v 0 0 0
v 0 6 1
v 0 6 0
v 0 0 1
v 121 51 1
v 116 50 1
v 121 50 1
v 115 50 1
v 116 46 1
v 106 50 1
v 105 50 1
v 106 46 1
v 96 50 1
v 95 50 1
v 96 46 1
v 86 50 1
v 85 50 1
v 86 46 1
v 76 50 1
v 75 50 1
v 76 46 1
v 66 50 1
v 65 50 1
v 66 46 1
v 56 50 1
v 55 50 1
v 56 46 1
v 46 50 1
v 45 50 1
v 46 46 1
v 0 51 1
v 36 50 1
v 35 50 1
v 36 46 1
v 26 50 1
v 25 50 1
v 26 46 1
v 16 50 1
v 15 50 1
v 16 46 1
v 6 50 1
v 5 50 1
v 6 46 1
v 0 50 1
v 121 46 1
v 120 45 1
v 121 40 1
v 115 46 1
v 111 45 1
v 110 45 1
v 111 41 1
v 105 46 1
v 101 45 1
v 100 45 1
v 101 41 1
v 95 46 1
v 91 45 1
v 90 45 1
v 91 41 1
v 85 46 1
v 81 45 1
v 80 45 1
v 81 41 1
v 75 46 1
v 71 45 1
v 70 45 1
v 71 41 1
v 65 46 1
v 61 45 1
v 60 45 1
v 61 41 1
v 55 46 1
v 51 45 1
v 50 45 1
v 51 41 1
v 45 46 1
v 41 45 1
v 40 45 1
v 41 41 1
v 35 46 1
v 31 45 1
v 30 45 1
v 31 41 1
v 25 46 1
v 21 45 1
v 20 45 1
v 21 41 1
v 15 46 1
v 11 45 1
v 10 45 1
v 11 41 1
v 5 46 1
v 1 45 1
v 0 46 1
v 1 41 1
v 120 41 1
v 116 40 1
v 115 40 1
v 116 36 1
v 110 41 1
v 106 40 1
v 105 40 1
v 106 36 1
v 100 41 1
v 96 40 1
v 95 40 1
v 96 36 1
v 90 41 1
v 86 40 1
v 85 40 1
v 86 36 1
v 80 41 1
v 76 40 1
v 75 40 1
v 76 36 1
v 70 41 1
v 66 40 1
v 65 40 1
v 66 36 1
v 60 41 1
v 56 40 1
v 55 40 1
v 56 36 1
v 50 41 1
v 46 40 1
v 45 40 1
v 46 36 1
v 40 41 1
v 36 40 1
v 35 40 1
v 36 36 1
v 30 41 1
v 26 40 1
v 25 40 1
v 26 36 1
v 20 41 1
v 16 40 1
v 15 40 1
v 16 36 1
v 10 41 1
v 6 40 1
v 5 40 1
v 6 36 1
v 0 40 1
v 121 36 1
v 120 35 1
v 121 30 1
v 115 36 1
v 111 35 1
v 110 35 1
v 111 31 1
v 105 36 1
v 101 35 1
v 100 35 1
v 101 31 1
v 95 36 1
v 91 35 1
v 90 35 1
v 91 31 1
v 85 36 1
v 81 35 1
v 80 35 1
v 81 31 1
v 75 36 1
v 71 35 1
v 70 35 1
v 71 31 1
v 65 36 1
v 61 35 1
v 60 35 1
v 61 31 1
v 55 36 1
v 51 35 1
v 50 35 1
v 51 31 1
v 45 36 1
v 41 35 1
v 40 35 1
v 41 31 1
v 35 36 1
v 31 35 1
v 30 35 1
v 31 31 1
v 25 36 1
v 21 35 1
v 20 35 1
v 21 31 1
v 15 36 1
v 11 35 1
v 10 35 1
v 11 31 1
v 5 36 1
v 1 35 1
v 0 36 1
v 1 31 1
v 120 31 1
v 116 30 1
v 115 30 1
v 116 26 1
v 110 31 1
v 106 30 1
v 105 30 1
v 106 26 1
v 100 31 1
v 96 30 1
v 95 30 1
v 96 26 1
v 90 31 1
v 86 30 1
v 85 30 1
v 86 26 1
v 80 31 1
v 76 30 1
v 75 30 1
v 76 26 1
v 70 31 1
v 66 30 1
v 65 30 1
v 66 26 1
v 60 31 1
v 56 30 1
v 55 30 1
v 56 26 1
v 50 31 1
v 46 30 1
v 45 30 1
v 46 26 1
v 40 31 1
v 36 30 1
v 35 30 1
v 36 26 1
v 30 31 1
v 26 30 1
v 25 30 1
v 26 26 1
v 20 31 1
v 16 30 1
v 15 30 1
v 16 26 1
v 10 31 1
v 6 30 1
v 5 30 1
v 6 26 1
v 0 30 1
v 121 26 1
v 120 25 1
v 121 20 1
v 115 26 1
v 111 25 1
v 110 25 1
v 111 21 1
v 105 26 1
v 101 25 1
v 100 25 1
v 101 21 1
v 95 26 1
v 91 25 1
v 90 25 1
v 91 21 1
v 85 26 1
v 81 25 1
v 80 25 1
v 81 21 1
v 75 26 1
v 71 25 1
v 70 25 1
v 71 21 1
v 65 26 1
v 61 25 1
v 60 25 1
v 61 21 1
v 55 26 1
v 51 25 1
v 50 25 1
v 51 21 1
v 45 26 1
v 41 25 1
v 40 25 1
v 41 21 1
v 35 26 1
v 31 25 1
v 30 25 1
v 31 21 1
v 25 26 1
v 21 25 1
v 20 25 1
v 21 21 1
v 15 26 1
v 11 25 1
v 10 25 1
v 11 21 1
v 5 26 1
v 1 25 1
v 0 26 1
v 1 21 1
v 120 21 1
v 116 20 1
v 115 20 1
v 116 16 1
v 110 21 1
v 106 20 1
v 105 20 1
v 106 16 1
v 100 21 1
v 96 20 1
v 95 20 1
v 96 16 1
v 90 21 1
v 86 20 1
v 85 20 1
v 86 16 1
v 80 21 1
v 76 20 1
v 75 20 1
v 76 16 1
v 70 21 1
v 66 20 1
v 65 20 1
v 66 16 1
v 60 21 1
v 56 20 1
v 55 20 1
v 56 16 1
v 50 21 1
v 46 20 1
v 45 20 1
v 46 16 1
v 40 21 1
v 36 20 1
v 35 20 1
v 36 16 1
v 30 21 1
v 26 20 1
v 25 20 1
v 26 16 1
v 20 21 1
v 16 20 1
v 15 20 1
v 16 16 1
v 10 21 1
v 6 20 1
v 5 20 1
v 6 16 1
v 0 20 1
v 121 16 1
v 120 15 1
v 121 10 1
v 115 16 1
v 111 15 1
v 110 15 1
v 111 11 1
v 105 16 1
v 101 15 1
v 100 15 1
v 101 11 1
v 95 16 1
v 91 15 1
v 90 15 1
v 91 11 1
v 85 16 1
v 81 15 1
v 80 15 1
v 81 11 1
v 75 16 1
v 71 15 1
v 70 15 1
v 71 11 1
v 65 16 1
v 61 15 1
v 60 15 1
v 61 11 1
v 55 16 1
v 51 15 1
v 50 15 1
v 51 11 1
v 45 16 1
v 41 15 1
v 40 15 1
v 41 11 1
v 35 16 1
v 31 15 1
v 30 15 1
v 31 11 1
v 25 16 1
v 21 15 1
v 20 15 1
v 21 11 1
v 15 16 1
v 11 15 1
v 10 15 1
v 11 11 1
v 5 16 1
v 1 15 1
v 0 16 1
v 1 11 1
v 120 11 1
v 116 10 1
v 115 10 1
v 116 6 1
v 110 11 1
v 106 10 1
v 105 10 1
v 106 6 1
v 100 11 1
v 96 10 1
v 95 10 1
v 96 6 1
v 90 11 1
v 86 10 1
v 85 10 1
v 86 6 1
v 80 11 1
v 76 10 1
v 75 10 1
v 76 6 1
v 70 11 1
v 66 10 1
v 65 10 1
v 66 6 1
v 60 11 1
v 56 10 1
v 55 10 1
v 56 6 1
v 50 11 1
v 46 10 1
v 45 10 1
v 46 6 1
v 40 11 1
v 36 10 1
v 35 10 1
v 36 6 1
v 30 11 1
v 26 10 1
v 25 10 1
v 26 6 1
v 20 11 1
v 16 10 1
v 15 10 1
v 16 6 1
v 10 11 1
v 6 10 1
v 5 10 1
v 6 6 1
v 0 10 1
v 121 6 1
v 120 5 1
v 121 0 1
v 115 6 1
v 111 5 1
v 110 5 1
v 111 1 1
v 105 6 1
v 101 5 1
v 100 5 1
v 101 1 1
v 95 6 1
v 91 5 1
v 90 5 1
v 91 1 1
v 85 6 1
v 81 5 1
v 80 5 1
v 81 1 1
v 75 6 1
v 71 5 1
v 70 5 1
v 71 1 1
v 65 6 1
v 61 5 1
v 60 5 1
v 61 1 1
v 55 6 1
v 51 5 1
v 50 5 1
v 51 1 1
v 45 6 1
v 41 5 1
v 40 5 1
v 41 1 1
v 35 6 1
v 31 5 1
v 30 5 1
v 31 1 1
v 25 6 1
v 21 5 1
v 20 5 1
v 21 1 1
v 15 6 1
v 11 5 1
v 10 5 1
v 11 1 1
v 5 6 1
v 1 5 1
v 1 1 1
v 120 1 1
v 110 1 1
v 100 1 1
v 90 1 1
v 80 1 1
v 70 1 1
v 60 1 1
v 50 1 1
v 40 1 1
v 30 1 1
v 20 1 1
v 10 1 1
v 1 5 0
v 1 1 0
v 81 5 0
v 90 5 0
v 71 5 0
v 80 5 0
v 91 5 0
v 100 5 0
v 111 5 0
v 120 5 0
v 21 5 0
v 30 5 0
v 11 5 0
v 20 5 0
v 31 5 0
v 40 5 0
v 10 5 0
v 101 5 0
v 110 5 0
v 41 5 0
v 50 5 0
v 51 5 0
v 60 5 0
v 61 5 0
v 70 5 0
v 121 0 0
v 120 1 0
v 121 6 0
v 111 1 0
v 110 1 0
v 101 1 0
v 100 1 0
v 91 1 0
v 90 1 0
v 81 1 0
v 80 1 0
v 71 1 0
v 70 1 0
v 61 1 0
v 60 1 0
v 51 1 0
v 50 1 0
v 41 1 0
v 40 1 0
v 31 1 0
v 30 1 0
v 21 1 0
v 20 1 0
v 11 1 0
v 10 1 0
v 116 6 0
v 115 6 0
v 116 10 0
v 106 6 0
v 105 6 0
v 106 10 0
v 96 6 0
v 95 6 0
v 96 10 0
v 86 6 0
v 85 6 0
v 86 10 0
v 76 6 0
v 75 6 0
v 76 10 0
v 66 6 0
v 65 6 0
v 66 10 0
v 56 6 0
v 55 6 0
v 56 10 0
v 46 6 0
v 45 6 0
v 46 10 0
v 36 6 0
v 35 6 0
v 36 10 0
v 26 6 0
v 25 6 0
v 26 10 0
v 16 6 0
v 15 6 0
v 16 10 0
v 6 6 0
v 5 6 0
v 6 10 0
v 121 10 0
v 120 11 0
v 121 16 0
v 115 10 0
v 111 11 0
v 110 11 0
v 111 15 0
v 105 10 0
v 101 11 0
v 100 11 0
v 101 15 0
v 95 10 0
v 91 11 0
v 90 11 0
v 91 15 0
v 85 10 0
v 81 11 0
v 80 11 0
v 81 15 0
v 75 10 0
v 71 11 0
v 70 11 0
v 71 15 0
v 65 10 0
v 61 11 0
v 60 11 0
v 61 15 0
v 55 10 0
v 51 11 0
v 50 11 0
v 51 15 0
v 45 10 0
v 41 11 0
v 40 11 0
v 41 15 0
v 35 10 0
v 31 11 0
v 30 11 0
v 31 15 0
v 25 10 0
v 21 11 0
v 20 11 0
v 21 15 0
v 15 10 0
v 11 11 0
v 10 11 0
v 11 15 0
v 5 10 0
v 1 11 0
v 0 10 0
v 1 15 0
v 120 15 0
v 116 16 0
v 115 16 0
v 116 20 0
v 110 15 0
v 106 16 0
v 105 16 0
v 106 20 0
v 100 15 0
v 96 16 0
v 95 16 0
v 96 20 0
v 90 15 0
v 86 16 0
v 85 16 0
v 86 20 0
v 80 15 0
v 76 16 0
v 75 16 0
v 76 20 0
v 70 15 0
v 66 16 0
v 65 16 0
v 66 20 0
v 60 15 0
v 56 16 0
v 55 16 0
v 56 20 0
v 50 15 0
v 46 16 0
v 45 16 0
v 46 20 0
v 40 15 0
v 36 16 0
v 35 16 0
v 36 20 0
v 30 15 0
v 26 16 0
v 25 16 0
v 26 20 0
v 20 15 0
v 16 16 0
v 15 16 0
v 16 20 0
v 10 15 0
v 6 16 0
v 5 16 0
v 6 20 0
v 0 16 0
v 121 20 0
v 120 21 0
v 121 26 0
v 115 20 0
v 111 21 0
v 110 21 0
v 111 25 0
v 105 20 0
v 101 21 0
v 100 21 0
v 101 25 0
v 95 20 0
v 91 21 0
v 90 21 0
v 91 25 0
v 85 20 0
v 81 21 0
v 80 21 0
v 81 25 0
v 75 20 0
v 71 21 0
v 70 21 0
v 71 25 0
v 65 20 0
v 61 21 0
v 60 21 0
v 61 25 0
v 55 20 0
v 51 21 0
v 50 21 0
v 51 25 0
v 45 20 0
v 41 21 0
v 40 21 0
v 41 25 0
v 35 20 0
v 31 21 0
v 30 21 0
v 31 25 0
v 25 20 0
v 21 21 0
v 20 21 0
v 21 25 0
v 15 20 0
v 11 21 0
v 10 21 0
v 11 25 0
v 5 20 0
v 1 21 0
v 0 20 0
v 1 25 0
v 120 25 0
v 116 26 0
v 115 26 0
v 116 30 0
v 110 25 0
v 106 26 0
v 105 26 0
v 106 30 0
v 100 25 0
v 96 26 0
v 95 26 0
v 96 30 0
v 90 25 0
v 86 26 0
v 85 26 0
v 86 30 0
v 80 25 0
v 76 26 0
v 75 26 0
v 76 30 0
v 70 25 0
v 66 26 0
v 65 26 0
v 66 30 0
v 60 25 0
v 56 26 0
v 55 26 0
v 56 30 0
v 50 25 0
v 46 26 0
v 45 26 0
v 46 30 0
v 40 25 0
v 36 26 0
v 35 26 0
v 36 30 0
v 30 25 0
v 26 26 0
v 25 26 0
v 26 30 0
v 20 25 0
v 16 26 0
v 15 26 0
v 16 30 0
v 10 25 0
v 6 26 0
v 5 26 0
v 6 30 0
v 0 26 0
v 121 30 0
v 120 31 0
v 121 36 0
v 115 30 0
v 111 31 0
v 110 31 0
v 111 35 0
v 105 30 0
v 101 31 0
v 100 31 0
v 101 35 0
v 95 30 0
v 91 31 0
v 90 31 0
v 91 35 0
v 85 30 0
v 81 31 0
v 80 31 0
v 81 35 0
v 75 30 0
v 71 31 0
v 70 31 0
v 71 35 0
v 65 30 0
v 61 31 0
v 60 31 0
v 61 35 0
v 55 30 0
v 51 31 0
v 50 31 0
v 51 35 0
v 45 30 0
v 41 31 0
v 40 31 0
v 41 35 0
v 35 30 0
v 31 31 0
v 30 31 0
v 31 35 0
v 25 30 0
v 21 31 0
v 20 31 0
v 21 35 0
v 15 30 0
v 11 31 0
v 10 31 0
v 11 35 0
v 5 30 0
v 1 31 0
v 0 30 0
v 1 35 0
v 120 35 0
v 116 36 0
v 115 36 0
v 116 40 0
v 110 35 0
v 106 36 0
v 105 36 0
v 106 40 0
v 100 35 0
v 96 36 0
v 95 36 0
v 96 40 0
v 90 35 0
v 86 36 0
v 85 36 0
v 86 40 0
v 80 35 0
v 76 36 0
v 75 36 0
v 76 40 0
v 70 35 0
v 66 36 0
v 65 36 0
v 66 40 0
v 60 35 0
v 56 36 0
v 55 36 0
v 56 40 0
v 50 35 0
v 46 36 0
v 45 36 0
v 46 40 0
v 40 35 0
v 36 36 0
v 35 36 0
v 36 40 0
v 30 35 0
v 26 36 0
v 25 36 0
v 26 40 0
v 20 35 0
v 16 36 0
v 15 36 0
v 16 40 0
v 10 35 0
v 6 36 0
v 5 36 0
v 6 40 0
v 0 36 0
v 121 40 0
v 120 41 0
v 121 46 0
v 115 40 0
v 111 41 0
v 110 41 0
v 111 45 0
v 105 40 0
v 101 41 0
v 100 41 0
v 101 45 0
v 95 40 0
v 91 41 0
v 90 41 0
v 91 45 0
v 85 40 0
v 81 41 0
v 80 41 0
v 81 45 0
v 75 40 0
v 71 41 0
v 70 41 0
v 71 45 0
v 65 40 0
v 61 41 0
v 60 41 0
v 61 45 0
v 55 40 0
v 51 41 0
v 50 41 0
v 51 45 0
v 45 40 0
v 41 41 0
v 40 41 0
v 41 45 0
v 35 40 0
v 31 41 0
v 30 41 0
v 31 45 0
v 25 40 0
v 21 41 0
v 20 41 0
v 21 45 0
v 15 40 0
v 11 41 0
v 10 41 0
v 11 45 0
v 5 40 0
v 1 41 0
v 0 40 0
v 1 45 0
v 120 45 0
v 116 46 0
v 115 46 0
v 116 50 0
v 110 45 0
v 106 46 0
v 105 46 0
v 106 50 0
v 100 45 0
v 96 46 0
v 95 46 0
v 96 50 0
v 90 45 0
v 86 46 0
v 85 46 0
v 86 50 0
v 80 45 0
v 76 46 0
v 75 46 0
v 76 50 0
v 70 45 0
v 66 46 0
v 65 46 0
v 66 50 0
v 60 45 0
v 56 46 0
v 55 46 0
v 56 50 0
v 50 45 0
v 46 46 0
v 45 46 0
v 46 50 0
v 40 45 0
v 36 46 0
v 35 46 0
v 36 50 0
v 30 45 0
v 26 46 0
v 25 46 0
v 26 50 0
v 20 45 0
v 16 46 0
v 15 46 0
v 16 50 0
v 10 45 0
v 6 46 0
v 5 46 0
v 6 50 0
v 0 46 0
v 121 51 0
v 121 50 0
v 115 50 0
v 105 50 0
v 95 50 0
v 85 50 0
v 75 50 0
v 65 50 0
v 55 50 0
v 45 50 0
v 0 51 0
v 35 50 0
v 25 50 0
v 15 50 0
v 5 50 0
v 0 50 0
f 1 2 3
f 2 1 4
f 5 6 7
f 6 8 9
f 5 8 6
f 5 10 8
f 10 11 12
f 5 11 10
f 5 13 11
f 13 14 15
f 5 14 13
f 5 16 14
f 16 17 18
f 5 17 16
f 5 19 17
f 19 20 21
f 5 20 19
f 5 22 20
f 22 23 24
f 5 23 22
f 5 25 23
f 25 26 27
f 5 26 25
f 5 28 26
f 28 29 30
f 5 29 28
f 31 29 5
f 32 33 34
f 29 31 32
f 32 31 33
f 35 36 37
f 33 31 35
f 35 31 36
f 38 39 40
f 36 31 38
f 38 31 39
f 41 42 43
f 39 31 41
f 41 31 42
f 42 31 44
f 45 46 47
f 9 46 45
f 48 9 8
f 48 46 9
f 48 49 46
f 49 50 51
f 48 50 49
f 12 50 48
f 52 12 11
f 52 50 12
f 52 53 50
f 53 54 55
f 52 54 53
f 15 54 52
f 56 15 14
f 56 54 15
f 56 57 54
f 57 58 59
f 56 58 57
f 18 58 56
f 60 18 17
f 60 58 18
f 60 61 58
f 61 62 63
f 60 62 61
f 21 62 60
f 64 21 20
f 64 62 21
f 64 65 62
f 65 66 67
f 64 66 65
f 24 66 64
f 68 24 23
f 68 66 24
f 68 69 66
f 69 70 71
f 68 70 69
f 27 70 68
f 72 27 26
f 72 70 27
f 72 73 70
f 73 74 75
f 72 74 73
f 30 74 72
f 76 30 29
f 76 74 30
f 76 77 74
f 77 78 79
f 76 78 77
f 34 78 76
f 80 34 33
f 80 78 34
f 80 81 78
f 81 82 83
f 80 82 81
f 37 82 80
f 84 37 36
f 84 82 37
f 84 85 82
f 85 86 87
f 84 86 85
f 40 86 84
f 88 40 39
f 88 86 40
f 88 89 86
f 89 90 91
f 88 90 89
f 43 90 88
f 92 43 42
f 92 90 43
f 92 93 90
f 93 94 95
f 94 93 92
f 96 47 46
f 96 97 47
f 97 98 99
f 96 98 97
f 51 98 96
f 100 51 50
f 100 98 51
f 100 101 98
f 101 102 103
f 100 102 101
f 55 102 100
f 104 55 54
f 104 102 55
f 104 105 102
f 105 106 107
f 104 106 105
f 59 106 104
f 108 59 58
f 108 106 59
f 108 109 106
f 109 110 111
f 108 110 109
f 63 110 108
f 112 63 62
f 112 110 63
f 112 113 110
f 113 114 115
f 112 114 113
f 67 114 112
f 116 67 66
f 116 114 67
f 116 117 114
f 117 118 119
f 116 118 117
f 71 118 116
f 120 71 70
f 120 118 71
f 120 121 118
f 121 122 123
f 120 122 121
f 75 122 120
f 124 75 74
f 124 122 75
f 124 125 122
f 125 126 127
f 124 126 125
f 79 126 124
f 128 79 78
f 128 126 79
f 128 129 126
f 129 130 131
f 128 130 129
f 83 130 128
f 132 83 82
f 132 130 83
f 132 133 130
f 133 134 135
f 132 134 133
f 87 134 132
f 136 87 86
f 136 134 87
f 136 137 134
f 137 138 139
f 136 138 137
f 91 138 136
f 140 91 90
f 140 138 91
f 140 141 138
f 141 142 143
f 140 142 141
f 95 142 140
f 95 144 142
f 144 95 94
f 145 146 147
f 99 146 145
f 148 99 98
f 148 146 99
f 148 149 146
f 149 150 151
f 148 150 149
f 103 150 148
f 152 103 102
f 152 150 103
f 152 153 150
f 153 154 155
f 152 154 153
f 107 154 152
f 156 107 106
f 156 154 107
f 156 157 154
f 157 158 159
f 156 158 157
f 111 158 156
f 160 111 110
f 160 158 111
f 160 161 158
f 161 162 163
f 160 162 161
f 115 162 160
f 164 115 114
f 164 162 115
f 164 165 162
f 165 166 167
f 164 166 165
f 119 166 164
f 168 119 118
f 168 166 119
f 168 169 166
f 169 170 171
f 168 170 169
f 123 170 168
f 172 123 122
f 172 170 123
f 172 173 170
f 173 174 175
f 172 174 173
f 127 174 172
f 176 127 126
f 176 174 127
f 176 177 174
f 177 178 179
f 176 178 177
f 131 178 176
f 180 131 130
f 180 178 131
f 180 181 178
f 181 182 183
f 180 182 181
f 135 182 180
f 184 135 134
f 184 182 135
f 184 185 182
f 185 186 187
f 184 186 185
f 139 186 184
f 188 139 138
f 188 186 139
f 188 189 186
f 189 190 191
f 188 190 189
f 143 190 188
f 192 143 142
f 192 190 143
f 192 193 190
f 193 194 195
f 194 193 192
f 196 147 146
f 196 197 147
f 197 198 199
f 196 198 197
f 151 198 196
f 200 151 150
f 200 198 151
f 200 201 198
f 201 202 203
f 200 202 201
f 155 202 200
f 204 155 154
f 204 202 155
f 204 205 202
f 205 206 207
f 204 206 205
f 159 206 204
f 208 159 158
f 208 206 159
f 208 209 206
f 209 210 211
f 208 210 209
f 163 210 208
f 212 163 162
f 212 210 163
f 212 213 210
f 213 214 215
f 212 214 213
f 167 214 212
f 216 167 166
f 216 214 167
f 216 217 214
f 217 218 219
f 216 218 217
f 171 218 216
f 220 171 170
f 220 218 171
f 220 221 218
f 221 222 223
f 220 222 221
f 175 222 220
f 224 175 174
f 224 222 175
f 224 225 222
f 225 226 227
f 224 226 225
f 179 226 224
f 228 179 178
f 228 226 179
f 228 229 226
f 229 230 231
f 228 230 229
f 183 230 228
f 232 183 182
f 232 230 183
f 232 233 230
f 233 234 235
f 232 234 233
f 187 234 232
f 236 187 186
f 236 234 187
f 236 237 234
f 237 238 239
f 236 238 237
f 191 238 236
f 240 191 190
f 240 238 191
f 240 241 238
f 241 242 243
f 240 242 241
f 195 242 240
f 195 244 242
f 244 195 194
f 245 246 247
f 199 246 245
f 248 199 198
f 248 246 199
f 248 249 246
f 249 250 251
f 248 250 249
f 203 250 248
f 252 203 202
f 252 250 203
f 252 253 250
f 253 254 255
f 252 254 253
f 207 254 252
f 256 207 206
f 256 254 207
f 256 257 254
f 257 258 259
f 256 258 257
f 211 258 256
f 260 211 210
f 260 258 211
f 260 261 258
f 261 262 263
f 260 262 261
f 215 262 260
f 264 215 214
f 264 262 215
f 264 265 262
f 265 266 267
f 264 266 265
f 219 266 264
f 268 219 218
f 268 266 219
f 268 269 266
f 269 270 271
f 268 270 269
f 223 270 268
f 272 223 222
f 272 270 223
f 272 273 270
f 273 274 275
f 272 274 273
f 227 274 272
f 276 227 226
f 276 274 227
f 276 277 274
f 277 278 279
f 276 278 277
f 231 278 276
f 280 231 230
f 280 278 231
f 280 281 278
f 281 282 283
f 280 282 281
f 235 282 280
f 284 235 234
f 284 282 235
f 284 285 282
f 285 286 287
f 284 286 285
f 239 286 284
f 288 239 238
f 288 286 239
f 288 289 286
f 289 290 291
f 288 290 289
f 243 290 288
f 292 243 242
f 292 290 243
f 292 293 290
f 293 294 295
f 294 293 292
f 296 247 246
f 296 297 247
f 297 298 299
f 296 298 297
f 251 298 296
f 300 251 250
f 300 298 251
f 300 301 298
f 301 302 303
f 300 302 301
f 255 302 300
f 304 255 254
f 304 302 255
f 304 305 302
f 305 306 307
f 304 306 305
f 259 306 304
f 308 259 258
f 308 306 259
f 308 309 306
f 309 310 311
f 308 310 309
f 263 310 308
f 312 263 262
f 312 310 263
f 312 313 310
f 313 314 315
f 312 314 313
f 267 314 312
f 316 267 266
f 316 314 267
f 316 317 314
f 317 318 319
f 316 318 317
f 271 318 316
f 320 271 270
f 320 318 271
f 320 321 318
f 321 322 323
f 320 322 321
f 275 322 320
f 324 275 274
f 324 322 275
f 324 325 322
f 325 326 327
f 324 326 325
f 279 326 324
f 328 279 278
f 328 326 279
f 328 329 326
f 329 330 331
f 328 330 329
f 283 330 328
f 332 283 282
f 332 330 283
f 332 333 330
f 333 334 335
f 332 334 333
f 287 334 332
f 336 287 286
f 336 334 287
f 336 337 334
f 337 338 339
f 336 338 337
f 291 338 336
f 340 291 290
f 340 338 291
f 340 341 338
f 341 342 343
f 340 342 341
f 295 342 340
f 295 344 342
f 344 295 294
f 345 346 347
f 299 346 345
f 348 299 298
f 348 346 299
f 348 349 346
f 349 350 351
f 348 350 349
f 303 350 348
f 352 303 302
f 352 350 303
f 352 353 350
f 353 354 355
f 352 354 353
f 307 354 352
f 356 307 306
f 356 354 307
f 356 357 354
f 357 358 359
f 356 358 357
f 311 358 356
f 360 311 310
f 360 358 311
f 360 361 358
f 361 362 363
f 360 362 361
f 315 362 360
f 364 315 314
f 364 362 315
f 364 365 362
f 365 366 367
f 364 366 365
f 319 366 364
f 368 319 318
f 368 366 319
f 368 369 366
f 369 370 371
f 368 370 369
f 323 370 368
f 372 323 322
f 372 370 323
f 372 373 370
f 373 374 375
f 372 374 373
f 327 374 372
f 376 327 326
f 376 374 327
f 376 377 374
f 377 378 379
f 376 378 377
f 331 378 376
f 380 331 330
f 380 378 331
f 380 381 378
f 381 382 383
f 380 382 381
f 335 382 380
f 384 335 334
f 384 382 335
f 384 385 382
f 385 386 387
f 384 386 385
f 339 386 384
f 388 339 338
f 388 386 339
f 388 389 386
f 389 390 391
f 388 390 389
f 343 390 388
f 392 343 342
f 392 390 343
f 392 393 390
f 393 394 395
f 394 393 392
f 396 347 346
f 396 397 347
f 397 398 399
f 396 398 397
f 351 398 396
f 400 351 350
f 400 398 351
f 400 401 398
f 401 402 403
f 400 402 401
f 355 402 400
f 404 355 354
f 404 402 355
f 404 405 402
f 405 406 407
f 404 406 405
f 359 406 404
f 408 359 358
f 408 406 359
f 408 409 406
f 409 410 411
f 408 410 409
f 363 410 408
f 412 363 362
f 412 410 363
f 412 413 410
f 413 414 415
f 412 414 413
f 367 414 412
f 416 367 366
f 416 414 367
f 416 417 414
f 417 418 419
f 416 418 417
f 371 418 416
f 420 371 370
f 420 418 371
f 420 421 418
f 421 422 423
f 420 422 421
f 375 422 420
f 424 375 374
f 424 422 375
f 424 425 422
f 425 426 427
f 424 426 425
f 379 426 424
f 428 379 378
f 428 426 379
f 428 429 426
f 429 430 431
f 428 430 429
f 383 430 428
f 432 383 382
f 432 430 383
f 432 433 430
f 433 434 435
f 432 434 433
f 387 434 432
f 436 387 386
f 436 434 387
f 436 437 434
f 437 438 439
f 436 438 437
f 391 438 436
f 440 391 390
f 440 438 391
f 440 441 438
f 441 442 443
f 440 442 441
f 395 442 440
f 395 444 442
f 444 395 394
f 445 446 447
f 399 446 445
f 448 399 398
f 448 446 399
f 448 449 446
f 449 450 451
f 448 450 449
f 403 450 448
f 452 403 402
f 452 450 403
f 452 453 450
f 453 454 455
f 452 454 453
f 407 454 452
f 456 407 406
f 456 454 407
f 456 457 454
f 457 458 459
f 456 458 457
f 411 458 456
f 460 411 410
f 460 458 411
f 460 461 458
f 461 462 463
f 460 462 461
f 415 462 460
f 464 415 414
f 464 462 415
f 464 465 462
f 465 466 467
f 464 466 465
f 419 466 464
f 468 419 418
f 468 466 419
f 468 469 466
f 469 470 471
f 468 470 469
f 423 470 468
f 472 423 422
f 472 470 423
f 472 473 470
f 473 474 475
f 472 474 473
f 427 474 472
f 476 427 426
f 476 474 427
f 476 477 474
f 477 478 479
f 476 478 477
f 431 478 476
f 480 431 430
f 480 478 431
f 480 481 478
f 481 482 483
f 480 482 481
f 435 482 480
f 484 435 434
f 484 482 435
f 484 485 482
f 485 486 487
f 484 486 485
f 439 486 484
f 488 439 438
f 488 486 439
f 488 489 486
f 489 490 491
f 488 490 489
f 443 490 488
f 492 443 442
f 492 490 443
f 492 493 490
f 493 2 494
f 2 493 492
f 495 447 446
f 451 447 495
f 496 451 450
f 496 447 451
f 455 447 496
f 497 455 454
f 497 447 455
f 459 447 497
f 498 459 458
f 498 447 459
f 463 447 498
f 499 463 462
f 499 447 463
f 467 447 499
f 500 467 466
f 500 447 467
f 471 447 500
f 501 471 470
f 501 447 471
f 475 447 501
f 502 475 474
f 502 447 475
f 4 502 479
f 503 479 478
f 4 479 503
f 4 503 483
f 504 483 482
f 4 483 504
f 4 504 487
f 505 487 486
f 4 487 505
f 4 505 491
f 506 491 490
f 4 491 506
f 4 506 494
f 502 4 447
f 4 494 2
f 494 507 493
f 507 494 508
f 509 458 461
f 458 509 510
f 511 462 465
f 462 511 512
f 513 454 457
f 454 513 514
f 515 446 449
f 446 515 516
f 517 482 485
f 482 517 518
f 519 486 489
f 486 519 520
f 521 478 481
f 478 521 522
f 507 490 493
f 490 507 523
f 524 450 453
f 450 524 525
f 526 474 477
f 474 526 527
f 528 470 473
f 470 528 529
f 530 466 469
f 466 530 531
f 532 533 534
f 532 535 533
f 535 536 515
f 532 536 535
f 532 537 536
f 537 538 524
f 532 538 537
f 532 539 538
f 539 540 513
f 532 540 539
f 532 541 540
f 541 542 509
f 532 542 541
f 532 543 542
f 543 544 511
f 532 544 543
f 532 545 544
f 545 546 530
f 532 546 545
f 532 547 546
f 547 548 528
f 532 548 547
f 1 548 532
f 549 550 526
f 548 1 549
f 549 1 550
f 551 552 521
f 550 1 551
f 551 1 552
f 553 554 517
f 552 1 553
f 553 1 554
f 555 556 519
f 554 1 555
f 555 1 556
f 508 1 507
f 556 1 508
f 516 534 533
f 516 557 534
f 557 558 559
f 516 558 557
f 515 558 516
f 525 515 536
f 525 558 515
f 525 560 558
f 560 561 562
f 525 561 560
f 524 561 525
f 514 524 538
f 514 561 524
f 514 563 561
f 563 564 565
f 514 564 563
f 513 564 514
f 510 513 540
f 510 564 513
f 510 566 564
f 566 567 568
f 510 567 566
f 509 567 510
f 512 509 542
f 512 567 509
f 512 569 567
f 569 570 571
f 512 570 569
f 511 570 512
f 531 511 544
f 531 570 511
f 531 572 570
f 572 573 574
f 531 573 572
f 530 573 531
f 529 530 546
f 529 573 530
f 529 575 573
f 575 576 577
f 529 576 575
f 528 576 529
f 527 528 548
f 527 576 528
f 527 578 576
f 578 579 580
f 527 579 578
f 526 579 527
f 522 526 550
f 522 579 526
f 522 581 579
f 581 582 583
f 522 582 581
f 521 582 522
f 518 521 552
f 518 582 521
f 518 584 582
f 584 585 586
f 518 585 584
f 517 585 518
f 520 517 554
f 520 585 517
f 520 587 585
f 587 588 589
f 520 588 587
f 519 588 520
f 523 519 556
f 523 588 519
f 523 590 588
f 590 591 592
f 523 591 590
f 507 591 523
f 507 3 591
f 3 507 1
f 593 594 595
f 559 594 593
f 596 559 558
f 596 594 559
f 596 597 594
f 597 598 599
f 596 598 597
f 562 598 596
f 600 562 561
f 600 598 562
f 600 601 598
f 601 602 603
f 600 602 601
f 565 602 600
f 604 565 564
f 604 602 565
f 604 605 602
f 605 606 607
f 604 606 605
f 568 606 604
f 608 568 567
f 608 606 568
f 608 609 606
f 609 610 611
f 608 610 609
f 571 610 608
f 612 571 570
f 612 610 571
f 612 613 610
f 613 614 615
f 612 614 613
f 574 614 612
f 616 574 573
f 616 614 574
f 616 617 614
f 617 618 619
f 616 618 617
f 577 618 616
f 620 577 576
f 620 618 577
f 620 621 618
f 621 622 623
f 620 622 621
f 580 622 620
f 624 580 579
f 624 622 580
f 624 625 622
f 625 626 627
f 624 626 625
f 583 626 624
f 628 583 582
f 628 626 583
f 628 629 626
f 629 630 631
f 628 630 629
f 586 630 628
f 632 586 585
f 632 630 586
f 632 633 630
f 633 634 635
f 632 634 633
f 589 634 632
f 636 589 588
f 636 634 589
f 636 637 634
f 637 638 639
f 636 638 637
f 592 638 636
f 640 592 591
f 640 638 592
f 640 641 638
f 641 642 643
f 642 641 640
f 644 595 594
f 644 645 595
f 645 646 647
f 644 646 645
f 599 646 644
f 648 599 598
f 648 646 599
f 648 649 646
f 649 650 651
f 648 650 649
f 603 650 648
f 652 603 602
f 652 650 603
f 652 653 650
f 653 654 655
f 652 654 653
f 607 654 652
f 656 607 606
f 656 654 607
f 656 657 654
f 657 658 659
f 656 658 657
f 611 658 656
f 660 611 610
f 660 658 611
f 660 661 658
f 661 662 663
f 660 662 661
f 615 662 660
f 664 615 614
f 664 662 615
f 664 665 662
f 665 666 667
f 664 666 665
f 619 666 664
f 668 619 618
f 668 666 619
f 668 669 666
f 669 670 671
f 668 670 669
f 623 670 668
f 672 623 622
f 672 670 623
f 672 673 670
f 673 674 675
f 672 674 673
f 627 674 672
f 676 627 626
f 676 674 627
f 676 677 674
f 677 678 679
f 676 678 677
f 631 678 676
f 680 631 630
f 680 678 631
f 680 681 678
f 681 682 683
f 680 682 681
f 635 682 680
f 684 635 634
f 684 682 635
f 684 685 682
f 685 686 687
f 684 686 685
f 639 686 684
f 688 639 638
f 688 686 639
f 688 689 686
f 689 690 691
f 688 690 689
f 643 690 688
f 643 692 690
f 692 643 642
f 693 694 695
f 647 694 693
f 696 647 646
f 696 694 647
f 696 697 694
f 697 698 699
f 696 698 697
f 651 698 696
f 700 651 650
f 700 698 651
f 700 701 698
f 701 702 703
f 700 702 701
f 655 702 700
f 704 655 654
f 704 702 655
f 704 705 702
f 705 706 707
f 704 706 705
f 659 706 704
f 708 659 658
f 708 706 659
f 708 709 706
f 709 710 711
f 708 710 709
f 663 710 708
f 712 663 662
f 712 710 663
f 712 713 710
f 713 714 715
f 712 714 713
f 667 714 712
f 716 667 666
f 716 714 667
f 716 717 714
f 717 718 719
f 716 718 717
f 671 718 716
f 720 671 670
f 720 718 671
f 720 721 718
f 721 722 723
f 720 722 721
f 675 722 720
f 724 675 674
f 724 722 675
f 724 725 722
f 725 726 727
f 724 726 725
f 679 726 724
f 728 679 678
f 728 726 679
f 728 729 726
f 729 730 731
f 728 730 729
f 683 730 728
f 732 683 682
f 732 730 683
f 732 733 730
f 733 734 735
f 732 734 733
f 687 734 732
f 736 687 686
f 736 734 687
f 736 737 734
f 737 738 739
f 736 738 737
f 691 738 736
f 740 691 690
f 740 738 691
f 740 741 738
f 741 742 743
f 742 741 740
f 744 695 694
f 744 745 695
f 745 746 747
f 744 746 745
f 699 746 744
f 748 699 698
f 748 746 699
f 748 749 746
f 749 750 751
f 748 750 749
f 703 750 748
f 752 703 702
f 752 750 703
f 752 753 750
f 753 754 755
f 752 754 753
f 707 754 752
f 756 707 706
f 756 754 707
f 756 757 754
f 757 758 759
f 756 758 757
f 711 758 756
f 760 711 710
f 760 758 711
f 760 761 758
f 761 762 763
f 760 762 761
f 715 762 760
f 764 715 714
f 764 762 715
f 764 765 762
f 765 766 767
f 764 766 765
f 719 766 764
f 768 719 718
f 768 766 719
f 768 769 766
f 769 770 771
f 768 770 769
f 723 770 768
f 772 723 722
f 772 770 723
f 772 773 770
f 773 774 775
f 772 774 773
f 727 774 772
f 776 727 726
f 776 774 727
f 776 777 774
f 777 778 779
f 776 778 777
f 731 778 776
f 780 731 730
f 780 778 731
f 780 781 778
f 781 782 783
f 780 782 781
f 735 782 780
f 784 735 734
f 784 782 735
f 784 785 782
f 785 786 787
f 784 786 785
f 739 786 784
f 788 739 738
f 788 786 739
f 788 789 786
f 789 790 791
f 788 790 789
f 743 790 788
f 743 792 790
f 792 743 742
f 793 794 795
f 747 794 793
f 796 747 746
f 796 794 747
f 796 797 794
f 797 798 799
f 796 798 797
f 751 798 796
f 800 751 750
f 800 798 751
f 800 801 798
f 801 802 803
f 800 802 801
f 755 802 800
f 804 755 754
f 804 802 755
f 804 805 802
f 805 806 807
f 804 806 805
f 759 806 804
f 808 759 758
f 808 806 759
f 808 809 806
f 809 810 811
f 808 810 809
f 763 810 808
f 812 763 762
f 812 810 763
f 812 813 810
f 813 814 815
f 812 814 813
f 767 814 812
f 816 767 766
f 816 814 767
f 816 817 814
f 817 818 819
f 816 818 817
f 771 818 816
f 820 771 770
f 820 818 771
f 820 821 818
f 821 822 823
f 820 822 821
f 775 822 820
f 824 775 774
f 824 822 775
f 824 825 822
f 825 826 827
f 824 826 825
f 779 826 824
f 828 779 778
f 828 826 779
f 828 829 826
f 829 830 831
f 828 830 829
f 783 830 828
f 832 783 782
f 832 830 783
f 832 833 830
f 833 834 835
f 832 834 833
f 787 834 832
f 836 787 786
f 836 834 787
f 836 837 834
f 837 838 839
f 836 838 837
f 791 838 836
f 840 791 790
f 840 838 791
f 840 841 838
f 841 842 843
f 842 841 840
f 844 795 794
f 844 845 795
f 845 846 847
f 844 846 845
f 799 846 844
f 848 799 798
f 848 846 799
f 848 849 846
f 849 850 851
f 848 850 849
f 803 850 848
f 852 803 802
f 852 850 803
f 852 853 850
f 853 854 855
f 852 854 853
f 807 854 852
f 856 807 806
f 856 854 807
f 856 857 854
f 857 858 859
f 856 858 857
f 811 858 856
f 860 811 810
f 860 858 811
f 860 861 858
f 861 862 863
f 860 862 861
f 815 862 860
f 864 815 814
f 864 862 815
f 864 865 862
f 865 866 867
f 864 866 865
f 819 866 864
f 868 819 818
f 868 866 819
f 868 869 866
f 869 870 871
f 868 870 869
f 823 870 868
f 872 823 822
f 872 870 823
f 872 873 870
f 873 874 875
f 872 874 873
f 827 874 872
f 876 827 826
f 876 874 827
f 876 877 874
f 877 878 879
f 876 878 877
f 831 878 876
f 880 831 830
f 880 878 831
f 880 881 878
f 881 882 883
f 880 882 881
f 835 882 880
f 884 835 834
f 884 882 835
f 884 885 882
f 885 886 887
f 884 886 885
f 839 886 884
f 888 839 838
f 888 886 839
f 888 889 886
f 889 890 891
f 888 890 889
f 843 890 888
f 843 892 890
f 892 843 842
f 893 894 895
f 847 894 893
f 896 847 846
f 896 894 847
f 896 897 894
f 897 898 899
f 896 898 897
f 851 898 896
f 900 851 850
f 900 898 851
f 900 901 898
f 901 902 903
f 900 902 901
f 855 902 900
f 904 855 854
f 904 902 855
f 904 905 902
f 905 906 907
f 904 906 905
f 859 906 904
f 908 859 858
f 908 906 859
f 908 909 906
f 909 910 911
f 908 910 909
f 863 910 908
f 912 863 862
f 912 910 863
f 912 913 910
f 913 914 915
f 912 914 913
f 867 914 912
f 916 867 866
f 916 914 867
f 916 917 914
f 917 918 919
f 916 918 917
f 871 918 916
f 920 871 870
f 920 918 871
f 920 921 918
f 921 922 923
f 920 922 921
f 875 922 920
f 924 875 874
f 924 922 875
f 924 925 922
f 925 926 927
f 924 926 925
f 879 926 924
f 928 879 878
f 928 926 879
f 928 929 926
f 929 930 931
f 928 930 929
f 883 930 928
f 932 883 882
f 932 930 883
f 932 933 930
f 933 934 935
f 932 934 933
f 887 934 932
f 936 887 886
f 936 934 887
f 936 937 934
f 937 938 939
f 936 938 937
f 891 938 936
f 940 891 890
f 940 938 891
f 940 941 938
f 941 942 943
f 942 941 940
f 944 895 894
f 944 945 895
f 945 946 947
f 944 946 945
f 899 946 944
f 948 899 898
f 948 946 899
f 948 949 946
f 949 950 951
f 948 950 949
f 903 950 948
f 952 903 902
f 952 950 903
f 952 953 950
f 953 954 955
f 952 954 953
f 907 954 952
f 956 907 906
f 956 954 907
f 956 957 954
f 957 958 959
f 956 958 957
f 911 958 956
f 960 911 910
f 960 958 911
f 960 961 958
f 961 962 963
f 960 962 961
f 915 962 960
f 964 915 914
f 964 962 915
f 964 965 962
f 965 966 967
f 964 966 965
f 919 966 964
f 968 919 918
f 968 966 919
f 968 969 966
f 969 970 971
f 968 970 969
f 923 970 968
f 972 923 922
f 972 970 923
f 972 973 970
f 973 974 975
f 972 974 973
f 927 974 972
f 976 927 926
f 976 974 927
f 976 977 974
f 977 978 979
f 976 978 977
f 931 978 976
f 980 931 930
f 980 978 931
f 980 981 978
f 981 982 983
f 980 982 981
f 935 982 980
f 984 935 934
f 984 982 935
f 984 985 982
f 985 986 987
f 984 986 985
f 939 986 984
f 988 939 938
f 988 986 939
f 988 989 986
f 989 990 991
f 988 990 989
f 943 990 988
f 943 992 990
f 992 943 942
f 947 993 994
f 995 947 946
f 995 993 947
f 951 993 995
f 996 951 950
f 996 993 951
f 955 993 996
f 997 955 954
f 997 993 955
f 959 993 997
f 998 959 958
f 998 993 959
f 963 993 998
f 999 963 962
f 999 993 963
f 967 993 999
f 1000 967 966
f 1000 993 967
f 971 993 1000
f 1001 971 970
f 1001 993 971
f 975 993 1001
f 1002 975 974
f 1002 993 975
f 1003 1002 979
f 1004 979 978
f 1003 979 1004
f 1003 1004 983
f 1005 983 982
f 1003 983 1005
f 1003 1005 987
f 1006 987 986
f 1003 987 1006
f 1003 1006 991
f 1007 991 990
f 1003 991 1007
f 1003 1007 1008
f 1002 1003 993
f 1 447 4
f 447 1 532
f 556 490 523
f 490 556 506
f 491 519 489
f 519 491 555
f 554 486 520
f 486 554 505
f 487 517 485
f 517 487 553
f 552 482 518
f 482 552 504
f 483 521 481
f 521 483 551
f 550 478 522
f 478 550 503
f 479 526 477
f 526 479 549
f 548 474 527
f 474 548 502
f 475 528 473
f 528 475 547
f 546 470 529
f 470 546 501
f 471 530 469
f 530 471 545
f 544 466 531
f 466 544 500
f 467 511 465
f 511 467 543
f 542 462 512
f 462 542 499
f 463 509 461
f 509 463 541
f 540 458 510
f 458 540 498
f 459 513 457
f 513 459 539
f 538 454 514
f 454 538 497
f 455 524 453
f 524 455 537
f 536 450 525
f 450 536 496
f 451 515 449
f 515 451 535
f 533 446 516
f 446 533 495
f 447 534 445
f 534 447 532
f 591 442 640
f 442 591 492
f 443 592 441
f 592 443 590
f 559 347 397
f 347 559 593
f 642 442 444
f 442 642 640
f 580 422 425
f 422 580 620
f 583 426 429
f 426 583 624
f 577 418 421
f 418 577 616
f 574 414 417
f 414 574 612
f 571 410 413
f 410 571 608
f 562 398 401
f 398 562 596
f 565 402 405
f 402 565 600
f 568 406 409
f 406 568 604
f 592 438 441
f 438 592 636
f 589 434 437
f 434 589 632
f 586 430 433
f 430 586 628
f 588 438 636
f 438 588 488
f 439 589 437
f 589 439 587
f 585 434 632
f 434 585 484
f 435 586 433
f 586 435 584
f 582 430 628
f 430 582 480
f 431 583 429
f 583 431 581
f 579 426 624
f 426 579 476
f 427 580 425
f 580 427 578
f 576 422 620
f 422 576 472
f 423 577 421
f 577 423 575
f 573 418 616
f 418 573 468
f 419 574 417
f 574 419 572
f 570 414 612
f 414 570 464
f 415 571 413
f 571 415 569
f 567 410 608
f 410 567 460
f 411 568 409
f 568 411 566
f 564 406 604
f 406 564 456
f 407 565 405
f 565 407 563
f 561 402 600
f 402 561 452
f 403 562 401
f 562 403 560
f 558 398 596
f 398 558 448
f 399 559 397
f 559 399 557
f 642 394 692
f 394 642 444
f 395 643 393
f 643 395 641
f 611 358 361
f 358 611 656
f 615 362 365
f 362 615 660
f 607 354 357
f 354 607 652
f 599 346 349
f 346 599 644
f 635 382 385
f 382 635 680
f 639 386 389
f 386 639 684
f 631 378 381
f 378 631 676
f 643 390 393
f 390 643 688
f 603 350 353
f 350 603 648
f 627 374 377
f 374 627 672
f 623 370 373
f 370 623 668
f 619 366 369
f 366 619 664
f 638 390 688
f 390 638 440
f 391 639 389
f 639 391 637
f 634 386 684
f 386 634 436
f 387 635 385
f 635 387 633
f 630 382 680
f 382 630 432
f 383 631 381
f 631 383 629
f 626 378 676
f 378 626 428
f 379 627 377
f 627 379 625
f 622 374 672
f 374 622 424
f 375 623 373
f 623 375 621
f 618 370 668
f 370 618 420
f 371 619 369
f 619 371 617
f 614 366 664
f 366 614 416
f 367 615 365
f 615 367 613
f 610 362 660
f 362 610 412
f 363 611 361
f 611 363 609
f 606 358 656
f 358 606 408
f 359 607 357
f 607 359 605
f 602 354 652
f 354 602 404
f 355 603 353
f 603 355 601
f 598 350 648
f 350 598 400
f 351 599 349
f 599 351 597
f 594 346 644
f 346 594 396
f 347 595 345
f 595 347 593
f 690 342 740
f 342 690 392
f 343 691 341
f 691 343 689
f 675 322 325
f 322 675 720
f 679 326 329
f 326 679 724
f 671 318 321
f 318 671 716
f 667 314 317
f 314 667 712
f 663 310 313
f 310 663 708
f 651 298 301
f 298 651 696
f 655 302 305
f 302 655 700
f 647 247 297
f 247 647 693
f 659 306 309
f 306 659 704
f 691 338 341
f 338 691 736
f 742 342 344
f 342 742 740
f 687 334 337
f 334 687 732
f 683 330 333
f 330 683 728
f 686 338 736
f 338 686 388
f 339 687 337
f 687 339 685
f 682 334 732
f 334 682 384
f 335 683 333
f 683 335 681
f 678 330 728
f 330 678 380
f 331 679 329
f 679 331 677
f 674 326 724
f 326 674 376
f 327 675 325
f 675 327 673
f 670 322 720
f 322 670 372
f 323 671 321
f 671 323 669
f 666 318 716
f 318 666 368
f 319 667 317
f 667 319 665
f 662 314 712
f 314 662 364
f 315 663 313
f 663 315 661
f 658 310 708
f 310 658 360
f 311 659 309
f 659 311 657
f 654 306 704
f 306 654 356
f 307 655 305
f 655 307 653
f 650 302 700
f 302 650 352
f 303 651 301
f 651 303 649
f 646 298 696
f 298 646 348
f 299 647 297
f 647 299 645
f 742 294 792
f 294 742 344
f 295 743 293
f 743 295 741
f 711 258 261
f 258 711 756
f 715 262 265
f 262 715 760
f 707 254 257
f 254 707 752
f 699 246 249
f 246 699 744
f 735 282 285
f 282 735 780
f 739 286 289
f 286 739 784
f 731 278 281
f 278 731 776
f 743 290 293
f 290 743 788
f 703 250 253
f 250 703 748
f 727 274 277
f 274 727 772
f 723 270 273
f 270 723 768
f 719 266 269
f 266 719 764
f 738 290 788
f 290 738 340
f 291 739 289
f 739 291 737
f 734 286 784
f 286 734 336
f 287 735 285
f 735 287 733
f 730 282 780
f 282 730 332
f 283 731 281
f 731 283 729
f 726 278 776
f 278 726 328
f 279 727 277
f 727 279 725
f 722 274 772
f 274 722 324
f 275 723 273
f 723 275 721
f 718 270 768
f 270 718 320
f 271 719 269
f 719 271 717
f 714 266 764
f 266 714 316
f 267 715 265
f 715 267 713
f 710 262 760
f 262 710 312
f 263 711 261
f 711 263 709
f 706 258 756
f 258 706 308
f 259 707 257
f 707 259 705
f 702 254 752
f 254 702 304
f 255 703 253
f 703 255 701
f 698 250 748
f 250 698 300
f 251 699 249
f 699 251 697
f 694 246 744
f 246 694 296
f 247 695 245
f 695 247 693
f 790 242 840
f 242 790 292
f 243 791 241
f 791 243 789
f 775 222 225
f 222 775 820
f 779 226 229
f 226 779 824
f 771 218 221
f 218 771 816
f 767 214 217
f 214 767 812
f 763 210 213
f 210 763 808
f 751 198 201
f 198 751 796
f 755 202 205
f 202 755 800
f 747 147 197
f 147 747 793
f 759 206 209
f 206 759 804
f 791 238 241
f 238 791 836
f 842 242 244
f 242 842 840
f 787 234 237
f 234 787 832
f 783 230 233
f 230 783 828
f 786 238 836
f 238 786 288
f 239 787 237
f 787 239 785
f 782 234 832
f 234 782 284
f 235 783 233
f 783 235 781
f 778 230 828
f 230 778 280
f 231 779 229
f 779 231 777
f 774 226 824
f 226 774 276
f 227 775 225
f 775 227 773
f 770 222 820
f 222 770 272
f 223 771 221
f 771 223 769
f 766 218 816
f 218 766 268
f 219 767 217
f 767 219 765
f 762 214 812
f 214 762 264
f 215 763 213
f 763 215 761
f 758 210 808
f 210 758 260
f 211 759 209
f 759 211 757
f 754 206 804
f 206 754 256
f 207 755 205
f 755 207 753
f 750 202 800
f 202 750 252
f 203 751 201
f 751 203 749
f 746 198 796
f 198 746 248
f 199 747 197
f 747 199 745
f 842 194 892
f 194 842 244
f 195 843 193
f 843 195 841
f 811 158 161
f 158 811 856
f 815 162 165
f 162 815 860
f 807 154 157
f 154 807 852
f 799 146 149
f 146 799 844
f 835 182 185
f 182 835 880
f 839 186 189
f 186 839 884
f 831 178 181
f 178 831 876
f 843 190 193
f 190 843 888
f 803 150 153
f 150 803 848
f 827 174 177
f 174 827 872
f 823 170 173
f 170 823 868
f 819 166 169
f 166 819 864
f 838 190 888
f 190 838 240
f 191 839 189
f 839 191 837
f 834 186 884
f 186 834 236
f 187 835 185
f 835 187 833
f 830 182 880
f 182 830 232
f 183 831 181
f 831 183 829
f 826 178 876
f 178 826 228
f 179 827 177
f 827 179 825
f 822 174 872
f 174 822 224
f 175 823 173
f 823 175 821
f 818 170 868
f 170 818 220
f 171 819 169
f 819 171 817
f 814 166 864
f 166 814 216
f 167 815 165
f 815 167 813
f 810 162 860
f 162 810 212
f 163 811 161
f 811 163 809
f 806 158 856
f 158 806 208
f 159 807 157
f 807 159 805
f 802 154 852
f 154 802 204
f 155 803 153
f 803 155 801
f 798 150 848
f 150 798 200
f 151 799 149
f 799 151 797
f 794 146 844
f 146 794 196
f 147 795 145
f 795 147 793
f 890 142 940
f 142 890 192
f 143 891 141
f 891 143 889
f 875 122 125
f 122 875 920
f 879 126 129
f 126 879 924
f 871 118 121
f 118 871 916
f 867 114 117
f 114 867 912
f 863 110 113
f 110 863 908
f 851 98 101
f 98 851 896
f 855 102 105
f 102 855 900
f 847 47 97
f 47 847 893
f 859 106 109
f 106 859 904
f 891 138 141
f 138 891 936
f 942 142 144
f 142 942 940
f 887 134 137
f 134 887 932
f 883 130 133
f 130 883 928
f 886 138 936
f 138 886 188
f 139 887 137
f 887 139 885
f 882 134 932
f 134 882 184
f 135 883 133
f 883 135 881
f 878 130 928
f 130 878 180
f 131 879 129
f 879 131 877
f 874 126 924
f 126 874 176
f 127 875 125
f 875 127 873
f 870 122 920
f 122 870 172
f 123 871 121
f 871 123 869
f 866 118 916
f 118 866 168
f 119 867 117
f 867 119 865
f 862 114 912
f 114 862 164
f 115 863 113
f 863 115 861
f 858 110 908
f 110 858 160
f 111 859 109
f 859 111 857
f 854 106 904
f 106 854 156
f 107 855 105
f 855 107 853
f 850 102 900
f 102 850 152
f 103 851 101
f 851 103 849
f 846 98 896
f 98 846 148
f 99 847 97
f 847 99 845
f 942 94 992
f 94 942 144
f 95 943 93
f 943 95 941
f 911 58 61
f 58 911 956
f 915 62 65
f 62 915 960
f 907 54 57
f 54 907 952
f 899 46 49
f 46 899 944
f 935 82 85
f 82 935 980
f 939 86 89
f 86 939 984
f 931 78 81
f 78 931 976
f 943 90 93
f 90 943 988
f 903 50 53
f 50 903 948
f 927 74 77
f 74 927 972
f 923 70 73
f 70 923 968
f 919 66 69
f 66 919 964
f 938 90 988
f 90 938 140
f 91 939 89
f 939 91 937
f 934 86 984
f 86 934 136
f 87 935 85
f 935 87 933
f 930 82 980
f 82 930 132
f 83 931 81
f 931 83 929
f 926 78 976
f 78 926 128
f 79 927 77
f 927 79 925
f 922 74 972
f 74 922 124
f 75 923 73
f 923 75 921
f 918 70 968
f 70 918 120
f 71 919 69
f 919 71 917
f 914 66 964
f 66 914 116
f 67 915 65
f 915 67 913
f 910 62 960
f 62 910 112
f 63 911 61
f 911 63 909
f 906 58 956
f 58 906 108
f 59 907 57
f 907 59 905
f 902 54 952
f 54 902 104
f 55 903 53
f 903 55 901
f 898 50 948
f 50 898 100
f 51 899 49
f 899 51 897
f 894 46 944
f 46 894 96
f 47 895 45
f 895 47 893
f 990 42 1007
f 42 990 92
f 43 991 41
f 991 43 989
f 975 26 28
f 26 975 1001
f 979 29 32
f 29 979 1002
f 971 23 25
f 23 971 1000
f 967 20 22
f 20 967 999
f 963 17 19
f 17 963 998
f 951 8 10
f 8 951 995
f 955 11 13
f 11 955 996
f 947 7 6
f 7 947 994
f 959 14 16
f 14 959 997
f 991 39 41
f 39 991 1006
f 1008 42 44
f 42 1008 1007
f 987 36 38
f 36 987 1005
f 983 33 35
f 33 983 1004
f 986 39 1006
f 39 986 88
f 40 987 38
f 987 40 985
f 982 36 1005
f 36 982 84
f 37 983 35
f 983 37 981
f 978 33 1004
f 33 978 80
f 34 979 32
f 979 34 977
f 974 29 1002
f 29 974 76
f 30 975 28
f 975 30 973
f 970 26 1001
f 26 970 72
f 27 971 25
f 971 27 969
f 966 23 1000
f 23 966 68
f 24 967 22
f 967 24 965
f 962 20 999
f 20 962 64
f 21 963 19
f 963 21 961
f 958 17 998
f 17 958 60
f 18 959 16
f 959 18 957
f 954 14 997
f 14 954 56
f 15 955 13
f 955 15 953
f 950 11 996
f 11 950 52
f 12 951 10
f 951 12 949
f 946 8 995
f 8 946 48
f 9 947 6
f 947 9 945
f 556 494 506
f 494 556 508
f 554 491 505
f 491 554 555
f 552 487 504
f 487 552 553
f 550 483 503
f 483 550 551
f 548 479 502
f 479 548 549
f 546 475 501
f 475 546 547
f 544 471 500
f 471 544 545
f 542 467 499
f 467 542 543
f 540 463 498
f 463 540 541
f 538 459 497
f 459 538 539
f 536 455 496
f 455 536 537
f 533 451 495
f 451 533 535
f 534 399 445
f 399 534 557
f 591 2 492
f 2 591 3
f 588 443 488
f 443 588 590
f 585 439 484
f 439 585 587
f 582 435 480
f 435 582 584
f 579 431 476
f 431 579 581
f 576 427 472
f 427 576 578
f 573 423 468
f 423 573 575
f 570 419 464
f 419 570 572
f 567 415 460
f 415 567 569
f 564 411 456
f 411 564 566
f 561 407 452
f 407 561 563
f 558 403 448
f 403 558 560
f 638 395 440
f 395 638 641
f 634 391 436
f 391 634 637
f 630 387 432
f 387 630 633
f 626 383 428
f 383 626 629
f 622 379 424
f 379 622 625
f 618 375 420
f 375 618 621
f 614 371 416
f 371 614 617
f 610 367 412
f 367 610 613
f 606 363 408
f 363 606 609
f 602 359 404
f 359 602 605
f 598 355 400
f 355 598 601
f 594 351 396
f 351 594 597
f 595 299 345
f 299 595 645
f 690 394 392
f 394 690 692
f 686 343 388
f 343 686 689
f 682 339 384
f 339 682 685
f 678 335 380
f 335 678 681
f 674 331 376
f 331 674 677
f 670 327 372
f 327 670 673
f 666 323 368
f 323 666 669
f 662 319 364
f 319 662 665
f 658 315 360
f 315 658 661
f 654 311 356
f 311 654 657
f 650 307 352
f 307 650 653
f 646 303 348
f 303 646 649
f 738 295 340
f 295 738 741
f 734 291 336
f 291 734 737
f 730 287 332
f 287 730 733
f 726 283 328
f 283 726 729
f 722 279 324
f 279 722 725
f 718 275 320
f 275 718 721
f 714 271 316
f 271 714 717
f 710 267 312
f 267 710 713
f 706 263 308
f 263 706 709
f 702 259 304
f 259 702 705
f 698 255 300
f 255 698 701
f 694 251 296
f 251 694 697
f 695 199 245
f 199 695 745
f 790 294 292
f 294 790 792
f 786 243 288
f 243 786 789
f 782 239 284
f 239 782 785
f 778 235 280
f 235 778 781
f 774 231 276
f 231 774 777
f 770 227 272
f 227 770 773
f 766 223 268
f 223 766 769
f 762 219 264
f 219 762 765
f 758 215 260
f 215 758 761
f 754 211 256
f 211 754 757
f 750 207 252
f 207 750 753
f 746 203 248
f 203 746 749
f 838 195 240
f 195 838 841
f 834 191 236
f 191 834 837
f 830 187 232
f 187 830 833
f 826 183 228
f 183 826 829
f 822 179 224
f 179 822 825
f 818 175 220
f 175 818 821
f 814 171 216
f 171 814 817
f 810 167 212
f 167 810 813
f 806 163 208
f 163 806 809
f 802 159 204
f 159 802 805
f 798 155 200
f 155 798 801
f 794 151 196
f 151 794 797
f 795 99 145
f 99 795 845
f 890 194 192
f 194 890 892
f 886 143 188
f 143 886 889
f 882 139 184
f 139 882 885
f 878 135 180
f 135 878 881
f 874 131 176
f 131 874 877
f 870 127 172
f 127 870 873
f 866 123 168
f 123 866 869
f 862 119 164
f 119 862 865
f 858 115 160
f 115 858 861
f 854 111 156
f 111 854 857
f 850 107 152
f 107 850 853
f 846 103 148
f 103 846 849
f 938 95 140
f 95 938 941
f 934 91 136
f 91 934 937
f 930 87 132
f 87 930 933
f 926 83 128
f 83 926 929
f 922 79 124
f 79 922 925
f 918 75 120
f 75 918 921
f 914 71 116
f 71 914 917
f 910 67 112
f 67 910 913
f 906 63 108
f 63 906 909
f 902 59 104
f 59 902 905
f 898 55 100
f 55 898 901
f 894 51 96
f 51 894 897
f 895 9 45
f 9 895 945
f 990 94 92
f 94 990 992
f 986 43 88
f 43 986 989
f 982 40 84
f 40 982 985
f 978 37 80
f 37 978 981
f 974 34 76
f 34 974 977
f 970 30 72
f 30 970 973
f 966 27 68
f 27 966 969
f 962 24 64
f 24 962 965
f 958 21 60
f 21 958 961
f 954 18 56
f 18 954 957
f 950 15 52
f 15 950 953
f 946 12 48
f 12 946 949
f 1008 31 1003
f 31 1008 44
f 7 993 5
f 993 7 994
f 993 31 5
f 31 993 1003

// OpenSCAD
stencil_thickness = 1;
stencil_width = 120;
stencil_rows = 10;

brick_height = 5;
brick_width=10;


for(i=[0:stencil_rows]){
    translate([0,i*brick_height, 0])
    line(stencil_width+1, 1);
    daneben =  i%2==0 ? 0 : brick_width/2;
    if(i<stencil_rows){
    for(x=[daneben:brick_width:stencil_width]){
        translate([x,i*brick_height,0])
        line(1, brick_height);
        }
    }
}
// first

module line(len,  thickness) {
        cube([len, thickness, stencil_thickness]);
    
}
